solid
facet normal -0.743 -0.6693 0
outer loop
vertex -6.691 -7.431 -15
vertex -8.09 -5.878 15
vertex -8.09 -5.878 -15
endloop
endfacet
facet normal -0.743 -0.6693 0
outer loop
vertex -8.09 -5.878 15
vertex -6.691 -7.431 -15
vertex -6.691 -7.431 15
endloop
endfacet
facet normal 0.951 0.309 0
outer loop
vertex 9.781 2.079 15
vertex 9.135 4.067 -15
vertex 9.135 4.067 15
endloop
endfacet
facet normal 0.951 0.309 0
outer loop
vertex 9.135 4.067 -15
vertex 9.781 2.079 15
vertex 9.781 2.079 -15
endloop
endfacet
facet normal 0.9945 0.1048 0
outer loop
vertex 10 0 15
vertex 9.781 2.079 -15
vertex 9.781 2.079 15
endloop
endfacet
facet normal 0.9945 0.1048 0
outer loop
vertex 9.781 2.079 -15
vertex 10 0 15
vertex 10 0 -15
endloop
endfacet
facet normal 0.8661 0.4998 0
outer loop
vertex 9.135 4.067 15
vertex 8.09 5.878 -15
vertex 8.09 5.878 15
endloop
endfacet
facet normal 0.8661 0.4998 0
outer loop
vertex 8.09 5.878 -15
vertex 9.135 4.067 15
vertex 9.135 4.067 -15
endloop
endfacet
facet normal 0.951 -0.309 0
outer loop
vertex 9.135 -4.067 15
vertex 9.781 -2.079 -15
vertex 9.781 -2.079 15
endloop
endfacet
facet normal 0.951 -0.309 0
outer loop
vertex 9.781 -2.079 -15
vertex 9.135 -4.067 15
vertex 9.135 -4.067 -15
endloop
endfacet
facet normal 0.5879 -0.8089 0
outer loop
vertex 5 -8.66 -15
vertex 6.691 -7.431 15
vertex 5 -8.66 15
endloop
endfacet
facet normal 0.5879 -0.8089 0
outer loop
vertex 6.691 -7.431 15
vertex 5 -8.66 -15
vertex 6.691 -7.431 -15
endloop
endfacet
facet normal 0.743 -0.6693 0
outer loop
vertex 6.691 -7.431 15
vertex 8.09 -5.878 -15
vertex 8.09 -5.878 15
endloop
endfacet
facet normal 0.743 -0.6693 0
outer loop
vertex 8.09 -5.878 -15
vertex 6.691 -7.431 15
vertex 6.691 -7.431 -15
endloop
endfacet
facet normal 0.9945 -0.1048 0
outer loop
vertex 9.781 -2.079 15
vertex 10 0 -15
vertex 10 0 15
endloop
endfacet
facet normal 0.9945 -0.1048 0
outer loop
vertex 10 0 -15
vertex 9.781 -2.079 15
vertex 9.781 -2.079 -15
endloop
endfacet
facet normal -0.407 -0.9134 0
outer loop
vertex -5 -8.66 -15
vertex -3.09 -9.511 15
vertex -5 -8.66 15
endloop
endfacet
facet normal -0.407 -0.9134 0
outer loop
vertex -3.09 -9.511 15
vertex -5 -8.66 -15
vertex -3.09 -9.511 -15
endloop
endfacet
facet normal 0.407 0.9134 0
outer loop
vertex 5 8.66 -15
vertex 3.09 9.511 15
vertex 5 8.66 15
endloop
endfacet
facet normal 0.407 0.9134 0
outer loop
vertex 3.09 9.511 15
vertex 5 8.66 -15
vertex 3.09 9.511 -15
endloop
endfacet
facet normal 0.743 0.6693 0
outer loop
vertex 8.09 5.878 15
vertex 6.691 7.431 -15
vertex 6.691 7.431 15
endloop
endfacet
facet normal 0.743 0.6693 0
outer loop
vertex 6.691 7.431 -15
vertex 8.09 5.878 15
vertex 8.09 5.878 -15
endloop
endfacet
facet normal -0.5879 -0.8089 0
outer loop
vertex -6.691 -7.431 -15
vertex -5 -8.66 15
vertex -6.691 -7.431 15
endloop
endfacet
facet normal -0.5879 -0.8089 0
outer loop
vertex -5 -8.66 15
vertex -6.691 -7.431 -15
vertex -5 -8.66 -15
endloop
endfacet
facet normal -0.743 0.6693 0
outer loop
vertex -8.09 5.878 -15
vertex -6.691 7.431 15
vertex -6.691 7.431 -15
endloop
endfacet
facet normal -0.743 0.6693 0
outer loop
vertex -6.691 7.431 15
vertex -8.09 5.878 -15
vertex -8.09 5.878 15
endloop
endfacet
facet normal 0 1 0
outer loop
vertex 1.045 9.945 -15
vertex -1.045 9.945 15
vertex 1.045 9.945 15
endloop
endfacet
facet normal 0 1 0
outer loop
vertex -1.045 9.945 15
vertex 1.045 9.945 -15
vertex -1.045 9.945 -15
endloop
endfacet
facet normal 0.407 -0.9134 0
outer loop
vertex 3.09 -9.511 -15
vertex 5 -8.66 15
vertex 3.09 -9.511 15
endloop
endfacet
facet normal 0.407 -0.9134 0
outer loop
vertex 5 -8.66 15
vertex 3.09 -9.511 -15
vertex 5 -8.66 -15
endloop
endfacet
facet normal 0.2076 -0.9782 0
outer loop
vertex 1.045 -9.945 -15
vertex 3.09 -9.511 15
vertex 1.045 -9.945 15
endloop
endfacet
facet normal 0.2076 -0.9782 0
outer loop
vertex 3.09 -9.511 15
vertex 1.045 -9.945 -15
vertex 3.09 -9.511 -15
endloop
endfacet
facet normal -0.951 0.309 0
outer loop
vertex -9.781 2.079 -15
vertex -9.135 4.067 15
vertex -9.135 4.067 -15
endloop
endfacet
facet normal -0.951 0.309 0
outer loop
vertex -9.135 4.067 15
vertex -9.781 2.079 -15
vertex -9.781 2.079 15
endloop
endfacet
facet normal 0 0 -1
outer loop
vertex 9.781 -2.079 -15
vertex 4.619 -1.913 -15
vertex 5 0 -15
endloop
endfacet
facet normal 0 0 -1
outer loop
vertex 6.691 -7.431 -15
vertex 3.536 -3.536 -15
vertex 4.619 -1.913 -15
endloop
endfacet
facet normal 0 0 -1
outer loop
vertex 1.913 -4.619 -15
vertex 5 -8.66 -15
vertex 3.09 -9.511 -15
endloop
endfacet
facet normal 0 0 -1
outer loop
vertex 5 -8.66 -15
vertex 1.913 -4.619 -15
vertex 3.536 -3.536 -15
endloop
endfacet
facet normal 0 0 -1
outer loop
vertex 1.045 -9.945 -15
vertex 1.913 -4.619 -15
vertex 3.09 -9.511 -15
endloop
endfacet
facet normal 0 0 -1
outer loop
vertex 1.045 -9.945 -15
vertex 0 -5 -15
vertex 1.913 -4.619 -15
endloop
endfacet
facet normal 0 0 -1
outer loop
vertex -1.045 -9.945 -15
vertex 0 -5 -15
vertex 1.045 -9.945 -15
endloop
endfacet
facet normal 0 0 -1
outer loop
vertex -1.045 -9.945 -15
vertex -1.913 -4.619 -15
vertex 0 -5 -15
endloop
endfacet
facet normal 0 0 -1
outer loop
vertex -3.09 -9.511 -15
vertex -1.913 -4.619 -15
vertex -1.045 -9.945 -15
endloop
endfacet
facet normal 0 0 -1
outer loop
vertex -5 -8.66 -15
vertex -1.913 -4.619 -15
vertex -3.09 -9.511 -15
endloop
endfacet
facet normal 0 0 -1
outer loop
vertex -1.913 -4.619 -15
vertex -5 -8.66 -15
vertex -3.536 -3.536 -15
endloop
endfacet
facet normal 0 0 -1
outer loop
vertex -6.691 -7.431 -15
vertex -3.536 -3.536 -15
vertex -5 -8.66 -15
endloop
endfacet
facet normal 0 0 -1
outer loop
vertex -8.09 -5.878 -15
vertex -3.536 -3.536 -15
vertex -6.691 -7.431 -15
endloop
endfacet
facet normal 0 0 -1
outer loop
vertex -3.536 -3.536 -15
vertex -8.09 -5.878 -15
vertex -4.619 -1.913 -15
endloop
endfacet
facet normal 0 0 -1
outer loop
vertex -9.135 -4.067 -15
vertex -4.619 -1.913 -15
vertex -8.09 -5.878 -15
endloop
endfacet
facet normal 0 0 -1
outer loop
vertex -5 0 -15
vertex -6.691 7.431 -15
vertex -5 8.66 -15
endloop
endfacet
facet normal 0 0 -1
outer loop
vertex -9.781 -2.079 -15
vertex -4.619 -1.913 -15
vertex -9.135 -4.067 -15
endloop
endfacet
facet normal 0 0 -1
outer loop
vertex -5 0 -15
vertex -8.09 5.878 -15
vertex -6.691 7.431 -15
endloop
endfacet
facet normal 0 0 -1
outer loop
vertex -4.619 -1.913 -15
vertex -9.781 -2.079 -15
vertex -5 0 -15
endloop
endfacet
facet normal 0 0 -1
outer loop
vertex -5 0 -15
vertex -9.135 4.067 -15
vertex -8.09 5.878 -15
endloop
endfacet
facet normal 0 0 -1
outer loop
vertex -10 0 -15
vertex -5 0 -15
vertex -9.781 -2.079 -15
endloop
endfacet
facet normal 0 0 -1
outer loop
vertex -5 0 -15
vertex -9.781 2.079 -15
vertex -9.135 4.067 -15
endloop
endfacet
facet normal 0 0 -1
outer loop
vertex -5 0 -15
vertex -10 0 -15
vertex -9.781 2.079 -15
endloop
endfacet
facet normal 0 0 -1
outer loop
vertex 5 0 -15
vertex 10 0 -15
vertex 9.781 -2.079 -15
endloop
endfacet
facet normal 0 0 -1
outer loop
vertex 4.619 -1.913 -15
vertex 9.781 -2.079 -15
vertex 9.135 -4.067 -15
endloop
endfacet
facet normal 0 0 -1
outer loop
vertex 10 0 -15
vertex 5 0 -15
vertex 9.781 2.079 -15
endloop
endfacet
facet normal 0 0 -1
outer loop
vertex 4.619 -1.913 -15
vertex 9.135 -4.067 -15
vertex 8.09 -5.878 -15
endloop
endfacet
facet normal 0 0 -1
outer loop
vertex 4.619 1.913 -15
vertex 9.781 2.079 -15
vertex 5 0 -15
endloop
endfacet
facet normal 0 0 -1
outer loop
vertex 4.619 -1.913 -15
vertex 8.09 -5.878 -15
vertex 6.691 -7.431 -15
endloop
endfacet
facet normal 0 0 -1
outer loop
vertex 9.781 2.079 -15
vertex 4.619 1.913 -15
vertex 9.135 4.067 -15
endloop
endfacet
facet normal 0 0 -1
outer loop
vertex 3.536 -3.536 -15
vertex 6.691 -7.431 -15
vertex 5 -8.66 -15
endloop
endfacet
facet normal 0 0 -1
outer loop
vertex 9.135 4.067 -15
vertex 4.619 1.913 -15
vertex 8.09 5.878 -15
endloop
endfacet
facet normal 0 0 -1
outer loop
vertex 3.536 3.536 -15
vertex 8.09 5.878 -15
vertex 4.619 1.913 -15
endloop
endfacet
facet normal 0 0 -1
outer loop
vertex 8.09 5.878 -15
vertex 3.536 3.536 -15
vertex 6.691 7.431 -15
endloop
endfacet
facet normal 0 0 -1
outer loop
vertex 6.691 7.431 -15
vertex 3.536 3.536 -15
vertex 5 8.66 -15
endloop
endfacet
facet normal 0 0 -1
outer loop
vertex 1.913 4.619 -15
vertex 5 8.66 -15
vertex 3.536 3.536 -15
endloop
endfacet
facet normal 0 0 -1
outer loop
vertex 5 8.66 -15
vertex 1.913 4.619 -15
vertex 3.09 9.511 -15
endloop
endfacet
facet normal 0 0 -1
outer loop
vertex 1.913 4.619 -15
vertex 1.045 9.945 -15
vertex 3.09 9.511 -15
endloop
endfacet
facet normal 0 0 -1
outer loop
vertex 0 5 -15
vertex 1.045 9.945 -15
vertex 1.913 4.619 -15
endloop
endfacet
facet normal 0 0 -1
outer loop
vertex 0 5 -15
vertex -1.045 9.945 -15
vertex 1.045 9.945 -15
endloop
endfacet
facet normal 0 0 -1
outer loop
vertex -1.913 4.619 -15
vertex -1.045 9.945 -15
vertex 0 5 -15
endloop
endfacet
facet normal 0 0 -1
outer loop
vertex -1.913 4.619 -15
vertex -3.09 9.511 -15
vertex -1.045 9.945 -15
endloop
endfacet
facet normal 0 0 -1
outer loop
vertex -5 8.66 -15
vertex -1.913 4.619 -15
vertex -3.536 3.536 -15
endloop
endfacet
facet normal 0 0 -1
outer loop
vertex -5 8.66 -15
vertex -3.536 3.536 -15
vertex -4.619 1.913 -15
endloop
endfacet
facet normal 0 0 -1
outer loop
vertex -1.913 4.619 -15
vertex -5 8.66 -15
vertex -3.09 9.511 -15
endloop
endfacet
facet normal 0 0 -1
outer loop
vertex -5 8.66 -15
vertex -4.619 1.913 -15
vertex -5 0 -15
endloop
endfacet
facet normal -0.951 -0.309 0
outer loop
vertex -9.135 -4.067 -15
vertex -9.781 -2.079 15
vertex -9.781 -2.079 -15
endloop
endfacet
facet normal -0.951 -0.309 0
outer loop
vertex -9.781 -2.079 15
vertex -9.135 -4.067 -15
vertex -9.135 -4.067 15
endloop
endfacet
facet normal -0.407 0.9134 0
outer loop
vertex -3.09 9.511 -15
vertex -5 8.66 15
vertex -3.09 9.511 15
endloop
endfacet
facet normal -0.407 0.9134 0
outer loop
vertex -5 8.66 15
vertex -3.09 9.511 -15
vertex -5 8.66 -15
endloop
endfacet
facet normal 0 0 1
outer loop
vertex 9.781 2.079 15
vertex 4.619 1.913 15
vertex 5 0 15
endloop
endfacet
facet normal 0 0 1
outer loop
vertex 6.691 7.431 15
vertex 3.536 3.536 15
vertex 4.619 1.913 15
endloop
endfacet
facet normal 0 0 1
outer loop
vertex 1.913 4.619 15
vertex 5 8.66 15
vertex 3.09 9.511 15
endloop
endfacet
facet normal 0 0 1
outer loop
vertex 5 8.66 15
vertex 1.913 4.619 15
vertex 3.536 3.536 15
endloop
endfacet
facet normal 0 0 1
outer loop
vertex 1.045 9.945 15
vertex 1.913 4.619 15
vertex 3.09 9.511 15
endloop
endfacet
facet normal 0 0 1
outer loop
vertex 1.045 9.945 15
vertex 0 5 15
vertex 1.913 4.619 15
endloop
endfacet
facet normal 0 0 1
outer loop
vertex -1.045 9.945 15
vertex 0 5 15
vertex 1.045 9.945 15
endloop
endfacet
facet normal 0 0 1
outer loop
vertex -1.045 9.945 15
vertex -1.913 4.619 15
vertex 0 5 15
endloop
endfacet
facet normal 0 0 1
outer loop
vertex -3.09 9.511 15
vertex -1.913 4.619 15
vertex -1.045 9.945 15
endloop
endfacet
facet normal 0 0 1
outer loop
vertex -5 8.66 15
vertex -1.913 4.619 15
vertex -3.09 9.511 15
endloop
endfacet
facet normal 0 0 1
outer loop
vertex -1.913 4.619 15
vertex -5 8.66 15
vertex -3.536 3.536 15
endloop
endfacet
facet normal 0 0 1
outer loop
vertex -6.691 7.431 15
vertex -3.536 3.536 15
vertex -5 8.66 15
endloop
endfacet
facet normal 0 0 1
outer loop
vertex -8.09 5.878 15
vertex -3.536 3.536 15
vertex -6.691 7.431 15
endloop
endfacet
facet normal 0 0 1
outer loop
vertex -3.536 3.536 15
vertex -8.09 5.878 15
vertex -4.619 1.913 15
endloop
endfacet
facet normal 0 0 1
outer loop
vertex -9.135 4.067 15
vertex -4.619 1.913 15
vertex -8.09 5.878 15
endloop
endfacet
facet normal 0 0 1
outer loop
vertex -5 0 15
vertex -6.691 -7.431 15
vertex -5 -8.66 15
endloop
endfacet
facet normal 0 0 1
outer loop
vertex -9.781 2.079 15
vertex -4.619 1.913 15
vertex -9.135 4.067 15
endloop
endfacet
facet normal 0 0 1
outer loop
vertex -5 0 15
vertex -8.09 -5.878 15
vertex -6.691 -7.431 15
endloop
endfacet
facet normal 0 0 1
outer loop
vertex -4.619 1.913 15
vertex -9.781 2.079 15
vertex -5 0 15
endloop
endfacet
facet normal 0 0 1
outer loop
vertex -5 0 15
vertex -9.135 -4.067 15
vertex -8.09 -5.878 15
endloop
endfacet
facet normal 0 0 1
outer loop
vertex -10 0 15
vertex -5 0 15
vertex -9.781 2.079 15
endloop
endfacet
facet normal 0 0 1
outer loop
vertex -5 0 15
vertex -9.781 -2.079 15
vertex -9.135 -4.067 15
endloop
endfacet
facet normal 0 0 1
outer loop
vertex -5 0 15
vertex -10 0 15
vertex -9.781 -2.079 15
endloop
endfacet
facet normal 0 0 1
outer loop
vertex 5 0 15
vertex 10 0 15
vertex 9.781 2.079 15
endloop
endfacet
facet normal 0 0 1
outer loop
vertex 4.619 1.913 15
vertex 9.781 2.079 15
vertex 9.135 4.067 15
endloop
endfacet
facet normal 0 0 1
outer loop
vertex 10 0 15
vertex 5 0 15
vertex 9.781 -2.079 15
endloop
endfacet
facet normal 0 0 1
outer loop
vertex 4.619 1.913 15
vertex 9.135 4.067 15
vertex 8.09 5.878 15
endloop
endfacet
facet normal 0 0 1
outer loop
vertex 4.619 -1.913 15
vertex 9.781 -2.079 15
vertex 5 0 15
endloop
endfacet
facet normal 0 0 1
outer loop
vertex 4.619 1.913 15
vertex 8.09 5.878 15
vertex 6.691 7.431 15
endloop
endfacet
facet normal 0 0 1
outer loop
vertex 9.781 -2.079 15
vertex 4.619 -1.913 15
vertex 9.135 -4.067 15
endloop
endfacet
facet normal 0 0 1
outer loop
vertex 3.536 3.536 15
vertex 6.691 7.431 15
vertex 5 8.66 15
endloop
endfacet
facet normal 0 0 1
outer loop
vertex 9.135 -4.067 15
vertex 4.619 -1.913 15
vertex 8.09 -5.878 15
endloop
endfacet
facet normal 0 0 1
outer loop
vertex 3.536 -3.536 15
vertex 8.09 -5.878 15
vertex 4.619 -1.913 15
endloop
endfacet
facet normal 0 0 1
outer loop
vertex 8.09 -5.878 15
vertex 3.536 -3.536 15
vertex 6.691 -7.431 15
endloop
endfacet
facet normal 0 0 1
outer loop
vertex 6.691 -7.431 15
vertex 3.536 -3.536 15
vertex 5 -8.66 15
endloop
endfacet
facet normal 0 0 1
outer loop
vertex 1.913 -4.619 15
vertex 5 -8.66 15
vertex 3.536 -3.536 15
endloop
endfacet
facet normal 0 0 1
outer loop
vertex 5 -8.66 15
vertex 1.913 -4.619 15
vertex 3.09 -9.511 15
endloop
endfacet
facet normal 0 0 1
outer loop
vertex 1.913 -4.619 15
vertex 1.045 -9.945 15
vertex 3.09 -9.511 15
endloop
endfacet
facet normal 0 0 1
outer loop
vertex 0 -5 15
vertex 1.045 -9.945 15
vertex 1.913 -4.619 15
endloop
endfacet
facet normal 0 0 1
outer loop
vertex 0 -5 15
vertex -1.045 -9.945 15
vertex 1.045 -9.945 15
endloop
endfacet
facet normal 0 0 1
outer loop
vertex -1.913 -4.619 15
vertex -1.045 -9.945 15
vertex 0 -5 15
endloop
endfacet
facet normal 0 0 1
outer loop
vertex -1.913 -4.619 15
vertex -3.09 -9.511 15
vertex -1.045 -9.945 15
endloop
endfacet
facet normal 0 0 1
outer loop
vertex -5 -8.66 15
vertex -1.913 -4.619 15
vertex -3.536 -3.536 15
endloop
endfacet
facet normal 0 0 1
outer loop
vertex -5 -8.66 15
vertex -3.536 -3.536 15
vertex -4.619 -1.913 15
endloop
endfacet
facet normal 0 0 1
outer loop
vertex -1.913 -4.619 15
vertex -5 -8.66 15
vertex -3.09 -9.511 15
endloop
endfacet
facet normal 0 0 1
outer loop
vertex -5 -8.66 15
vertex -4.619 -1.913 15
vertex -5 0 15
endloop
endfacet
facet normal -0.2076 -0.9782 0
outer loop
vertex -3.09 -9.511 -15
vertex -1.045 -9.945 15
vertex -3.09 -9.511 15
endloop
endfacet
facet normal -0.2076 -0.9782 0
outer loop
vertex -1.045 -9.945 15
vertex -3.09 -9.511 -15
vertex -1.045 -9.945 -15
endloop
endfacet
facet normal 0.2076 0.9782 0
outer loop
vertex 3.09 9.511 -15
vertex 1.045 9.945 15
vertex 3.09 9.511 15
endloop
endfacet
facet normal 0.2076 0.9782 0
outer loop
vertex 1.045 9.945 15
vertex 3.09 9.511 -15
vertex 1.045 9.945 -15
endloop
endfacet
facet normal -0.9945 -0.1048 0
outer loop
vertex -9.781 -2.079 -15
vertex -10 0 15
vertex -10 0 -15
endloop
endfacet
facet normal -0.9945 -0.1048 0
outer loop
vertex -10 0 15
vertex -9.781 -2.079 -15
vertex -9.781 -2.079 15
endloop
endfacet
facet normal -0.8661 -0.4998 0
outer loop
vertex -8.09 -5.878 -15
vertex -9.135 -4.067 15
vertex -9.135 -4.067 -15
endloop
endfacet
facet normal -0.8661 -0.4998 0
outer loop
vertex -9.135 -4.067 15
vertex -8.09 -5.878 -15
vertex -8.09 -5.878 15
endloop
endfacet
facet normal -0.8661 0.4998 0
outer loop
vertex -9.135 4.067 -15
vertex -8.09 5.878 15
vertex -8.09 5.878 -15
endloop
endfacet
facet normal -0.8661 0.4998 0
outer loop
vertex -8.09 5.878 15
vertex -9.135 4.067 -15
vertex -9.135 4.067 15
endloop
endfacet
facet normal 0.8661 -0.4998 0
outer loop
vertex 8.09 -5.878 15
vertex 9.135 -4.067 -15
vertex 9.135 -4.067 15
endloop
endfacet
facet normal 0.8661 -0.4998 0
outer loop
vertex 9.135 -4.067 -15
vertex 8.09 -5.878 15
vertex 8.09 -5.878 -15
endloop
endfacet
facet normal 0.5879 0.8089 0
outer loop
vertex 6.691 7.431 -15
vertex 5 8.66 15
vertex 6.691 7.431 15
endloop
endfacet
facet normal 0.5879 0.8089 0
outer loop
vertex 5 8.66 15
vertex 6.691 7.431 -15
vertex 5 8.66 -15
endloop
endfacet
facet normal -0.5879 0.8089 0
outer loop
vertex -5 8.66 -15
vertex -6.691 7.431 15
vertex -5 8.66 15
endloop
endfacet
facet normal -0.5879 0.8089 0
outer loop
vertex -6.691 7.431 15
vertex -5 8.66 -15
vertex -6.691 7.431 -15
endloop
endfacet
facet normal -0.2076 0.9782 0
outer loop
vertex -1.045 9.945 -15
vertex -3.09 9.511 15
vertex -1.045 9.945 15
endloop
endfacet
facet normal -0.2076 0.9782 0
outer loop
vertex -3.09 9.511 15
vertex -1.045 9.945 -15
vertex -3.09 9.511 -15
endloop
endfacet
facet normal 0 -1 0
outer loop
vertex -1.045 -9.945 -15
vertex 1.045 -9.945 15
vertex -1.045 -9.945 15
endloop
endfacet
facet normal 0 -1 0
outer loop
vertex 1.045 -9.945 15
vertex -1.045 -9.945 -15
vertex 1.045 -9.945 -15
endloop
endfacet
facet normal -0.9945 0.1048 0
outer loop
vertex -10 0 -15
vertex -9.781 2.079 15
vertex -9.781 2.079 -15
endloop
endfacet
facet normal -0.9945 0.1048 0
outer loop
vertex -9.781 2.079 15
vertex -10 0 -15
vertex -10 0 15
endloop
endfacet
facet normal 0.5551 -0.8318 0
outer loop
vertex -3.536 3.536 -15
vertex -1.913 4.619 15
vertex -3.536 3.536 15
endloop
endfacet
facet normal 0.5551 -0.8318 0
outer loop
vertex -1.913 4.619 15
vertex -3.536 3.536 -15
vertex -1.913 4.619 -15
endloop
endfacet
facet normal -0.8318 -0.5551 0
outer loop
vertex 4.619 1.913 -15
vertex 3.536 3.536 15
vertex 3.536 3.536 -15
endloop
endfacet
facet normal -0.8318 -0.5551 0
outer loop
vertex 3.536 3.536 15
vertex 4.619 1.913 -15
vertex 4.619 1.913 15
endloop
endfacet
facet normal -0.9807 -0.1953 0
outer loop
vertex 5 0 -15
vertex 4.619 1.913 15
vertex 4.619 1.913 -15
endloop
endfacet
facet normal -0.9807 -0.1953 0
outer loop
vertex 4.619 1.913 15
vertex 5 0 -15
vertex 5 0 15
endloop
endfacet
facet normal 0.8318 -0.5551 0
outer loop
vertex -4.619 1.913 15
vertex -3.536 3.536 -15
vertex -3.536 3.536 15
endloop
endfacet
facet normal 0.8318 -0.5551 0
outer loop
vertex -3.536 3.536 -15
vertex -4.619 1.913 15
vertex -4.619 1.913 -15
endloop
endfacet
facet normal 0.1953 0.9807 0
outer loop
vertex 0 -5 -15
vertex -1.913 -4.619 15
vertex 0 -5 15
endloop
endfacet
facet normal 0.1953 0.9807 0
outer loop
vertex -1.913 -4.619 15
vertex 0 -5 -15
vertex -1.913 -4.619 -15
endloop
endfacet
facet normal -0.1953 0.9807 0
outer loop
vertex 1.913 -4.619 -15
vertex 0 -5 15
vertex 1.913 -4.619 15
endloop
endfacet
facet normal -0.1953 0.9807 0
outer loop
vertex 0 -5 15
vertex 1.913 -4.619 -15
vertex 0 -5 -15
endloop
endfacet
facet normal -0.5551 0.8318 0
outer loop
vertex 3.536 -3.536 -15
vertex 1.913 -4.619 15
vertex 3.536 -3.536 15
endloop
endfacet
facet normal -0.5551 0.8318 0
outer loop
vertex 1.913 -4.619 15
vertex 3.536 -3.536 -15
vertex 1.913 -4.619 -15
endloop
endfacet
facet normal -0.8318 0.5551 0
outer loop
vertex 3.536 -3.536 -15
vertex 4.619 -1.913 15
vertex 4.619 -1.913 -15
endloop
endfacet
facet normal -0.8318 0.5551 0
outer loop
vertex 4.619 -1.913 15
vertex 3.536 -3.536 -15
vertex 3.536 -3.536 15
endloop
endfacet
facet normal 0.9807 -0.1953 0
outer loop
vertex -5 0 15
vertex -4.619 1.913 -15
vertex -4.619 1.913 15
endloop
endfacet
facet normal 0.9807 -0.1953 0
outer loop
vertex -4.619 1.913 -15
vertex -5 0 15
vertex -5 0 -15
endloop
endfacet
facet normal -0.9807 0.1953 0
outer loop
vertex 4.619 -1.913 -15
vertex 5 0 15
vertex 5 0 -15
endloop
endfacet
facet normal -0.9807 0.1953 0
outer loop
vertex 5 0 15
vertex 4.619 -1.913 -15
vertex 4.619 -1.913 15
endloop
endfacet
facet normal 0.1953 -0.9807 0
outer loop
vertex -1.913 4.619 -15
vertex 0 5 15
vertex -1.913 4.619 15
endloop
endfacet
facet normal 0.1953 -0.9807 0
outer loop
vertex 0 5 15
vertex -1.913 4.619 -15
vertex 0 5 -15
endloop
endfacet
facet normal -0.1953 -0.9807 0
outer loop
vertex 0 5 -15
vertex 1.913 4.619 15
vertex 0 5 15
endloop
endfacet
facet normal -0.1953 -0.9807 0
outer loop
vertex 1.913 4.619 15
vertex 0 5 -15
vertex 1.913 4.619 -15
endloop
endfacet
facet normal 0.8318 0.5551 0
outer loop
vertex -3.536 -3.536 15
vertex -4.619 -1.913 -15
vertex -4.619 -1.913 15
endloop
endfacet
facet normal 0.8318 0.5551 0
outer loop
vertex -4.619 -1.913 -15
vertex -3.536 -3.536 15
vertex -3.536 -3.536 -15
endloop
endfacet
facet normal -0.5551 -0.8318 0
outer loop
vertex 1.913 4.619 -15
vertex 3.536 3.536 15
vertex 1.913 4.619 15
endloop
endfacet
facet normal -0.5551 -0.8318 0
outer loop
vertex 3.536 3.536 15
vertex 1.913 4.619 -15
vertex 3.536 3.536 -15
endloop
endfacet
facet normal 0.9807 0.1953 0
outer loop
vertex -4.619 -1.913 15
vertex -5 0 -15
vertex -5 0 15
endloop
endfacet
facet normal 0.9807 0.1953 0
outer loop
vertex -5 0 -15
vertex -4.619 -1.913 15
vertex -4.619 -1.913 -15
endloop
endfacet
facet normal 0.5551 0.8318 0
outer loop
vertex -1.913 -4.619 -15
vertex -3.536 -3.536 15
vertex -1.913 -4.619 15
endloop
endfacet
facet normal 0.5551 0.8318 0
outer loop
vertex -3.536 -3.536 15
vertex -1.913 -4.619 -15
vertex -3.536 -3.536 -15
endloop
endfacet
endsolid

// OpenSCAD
// Parameters for the cylindrical component
cylinder_outer_diameter = 20; // Outer diameter of the cylinder
cylinder_height = 30;        // Height of the cylinder (shortened to match the original model)
cylinder_inner_diameter = 10; // Inner diameter (hollow center)

// Function to create the cylindrical component
module cylindrical_component() {
    difference() {
        // Outer cylinder with uniform diameter (no tapering)
        cylinder(d=cylinder_outer_diameter, h=cylinder_height, center=true);
        // Inner hollow cylinder
        cylinder(d=cylinder_inner_diameter, h=cylinder_height + 1, center=true);
    }
}

// Assembly of the model
translate([0, 0, 0]) {
    cylindrical_component();
}
